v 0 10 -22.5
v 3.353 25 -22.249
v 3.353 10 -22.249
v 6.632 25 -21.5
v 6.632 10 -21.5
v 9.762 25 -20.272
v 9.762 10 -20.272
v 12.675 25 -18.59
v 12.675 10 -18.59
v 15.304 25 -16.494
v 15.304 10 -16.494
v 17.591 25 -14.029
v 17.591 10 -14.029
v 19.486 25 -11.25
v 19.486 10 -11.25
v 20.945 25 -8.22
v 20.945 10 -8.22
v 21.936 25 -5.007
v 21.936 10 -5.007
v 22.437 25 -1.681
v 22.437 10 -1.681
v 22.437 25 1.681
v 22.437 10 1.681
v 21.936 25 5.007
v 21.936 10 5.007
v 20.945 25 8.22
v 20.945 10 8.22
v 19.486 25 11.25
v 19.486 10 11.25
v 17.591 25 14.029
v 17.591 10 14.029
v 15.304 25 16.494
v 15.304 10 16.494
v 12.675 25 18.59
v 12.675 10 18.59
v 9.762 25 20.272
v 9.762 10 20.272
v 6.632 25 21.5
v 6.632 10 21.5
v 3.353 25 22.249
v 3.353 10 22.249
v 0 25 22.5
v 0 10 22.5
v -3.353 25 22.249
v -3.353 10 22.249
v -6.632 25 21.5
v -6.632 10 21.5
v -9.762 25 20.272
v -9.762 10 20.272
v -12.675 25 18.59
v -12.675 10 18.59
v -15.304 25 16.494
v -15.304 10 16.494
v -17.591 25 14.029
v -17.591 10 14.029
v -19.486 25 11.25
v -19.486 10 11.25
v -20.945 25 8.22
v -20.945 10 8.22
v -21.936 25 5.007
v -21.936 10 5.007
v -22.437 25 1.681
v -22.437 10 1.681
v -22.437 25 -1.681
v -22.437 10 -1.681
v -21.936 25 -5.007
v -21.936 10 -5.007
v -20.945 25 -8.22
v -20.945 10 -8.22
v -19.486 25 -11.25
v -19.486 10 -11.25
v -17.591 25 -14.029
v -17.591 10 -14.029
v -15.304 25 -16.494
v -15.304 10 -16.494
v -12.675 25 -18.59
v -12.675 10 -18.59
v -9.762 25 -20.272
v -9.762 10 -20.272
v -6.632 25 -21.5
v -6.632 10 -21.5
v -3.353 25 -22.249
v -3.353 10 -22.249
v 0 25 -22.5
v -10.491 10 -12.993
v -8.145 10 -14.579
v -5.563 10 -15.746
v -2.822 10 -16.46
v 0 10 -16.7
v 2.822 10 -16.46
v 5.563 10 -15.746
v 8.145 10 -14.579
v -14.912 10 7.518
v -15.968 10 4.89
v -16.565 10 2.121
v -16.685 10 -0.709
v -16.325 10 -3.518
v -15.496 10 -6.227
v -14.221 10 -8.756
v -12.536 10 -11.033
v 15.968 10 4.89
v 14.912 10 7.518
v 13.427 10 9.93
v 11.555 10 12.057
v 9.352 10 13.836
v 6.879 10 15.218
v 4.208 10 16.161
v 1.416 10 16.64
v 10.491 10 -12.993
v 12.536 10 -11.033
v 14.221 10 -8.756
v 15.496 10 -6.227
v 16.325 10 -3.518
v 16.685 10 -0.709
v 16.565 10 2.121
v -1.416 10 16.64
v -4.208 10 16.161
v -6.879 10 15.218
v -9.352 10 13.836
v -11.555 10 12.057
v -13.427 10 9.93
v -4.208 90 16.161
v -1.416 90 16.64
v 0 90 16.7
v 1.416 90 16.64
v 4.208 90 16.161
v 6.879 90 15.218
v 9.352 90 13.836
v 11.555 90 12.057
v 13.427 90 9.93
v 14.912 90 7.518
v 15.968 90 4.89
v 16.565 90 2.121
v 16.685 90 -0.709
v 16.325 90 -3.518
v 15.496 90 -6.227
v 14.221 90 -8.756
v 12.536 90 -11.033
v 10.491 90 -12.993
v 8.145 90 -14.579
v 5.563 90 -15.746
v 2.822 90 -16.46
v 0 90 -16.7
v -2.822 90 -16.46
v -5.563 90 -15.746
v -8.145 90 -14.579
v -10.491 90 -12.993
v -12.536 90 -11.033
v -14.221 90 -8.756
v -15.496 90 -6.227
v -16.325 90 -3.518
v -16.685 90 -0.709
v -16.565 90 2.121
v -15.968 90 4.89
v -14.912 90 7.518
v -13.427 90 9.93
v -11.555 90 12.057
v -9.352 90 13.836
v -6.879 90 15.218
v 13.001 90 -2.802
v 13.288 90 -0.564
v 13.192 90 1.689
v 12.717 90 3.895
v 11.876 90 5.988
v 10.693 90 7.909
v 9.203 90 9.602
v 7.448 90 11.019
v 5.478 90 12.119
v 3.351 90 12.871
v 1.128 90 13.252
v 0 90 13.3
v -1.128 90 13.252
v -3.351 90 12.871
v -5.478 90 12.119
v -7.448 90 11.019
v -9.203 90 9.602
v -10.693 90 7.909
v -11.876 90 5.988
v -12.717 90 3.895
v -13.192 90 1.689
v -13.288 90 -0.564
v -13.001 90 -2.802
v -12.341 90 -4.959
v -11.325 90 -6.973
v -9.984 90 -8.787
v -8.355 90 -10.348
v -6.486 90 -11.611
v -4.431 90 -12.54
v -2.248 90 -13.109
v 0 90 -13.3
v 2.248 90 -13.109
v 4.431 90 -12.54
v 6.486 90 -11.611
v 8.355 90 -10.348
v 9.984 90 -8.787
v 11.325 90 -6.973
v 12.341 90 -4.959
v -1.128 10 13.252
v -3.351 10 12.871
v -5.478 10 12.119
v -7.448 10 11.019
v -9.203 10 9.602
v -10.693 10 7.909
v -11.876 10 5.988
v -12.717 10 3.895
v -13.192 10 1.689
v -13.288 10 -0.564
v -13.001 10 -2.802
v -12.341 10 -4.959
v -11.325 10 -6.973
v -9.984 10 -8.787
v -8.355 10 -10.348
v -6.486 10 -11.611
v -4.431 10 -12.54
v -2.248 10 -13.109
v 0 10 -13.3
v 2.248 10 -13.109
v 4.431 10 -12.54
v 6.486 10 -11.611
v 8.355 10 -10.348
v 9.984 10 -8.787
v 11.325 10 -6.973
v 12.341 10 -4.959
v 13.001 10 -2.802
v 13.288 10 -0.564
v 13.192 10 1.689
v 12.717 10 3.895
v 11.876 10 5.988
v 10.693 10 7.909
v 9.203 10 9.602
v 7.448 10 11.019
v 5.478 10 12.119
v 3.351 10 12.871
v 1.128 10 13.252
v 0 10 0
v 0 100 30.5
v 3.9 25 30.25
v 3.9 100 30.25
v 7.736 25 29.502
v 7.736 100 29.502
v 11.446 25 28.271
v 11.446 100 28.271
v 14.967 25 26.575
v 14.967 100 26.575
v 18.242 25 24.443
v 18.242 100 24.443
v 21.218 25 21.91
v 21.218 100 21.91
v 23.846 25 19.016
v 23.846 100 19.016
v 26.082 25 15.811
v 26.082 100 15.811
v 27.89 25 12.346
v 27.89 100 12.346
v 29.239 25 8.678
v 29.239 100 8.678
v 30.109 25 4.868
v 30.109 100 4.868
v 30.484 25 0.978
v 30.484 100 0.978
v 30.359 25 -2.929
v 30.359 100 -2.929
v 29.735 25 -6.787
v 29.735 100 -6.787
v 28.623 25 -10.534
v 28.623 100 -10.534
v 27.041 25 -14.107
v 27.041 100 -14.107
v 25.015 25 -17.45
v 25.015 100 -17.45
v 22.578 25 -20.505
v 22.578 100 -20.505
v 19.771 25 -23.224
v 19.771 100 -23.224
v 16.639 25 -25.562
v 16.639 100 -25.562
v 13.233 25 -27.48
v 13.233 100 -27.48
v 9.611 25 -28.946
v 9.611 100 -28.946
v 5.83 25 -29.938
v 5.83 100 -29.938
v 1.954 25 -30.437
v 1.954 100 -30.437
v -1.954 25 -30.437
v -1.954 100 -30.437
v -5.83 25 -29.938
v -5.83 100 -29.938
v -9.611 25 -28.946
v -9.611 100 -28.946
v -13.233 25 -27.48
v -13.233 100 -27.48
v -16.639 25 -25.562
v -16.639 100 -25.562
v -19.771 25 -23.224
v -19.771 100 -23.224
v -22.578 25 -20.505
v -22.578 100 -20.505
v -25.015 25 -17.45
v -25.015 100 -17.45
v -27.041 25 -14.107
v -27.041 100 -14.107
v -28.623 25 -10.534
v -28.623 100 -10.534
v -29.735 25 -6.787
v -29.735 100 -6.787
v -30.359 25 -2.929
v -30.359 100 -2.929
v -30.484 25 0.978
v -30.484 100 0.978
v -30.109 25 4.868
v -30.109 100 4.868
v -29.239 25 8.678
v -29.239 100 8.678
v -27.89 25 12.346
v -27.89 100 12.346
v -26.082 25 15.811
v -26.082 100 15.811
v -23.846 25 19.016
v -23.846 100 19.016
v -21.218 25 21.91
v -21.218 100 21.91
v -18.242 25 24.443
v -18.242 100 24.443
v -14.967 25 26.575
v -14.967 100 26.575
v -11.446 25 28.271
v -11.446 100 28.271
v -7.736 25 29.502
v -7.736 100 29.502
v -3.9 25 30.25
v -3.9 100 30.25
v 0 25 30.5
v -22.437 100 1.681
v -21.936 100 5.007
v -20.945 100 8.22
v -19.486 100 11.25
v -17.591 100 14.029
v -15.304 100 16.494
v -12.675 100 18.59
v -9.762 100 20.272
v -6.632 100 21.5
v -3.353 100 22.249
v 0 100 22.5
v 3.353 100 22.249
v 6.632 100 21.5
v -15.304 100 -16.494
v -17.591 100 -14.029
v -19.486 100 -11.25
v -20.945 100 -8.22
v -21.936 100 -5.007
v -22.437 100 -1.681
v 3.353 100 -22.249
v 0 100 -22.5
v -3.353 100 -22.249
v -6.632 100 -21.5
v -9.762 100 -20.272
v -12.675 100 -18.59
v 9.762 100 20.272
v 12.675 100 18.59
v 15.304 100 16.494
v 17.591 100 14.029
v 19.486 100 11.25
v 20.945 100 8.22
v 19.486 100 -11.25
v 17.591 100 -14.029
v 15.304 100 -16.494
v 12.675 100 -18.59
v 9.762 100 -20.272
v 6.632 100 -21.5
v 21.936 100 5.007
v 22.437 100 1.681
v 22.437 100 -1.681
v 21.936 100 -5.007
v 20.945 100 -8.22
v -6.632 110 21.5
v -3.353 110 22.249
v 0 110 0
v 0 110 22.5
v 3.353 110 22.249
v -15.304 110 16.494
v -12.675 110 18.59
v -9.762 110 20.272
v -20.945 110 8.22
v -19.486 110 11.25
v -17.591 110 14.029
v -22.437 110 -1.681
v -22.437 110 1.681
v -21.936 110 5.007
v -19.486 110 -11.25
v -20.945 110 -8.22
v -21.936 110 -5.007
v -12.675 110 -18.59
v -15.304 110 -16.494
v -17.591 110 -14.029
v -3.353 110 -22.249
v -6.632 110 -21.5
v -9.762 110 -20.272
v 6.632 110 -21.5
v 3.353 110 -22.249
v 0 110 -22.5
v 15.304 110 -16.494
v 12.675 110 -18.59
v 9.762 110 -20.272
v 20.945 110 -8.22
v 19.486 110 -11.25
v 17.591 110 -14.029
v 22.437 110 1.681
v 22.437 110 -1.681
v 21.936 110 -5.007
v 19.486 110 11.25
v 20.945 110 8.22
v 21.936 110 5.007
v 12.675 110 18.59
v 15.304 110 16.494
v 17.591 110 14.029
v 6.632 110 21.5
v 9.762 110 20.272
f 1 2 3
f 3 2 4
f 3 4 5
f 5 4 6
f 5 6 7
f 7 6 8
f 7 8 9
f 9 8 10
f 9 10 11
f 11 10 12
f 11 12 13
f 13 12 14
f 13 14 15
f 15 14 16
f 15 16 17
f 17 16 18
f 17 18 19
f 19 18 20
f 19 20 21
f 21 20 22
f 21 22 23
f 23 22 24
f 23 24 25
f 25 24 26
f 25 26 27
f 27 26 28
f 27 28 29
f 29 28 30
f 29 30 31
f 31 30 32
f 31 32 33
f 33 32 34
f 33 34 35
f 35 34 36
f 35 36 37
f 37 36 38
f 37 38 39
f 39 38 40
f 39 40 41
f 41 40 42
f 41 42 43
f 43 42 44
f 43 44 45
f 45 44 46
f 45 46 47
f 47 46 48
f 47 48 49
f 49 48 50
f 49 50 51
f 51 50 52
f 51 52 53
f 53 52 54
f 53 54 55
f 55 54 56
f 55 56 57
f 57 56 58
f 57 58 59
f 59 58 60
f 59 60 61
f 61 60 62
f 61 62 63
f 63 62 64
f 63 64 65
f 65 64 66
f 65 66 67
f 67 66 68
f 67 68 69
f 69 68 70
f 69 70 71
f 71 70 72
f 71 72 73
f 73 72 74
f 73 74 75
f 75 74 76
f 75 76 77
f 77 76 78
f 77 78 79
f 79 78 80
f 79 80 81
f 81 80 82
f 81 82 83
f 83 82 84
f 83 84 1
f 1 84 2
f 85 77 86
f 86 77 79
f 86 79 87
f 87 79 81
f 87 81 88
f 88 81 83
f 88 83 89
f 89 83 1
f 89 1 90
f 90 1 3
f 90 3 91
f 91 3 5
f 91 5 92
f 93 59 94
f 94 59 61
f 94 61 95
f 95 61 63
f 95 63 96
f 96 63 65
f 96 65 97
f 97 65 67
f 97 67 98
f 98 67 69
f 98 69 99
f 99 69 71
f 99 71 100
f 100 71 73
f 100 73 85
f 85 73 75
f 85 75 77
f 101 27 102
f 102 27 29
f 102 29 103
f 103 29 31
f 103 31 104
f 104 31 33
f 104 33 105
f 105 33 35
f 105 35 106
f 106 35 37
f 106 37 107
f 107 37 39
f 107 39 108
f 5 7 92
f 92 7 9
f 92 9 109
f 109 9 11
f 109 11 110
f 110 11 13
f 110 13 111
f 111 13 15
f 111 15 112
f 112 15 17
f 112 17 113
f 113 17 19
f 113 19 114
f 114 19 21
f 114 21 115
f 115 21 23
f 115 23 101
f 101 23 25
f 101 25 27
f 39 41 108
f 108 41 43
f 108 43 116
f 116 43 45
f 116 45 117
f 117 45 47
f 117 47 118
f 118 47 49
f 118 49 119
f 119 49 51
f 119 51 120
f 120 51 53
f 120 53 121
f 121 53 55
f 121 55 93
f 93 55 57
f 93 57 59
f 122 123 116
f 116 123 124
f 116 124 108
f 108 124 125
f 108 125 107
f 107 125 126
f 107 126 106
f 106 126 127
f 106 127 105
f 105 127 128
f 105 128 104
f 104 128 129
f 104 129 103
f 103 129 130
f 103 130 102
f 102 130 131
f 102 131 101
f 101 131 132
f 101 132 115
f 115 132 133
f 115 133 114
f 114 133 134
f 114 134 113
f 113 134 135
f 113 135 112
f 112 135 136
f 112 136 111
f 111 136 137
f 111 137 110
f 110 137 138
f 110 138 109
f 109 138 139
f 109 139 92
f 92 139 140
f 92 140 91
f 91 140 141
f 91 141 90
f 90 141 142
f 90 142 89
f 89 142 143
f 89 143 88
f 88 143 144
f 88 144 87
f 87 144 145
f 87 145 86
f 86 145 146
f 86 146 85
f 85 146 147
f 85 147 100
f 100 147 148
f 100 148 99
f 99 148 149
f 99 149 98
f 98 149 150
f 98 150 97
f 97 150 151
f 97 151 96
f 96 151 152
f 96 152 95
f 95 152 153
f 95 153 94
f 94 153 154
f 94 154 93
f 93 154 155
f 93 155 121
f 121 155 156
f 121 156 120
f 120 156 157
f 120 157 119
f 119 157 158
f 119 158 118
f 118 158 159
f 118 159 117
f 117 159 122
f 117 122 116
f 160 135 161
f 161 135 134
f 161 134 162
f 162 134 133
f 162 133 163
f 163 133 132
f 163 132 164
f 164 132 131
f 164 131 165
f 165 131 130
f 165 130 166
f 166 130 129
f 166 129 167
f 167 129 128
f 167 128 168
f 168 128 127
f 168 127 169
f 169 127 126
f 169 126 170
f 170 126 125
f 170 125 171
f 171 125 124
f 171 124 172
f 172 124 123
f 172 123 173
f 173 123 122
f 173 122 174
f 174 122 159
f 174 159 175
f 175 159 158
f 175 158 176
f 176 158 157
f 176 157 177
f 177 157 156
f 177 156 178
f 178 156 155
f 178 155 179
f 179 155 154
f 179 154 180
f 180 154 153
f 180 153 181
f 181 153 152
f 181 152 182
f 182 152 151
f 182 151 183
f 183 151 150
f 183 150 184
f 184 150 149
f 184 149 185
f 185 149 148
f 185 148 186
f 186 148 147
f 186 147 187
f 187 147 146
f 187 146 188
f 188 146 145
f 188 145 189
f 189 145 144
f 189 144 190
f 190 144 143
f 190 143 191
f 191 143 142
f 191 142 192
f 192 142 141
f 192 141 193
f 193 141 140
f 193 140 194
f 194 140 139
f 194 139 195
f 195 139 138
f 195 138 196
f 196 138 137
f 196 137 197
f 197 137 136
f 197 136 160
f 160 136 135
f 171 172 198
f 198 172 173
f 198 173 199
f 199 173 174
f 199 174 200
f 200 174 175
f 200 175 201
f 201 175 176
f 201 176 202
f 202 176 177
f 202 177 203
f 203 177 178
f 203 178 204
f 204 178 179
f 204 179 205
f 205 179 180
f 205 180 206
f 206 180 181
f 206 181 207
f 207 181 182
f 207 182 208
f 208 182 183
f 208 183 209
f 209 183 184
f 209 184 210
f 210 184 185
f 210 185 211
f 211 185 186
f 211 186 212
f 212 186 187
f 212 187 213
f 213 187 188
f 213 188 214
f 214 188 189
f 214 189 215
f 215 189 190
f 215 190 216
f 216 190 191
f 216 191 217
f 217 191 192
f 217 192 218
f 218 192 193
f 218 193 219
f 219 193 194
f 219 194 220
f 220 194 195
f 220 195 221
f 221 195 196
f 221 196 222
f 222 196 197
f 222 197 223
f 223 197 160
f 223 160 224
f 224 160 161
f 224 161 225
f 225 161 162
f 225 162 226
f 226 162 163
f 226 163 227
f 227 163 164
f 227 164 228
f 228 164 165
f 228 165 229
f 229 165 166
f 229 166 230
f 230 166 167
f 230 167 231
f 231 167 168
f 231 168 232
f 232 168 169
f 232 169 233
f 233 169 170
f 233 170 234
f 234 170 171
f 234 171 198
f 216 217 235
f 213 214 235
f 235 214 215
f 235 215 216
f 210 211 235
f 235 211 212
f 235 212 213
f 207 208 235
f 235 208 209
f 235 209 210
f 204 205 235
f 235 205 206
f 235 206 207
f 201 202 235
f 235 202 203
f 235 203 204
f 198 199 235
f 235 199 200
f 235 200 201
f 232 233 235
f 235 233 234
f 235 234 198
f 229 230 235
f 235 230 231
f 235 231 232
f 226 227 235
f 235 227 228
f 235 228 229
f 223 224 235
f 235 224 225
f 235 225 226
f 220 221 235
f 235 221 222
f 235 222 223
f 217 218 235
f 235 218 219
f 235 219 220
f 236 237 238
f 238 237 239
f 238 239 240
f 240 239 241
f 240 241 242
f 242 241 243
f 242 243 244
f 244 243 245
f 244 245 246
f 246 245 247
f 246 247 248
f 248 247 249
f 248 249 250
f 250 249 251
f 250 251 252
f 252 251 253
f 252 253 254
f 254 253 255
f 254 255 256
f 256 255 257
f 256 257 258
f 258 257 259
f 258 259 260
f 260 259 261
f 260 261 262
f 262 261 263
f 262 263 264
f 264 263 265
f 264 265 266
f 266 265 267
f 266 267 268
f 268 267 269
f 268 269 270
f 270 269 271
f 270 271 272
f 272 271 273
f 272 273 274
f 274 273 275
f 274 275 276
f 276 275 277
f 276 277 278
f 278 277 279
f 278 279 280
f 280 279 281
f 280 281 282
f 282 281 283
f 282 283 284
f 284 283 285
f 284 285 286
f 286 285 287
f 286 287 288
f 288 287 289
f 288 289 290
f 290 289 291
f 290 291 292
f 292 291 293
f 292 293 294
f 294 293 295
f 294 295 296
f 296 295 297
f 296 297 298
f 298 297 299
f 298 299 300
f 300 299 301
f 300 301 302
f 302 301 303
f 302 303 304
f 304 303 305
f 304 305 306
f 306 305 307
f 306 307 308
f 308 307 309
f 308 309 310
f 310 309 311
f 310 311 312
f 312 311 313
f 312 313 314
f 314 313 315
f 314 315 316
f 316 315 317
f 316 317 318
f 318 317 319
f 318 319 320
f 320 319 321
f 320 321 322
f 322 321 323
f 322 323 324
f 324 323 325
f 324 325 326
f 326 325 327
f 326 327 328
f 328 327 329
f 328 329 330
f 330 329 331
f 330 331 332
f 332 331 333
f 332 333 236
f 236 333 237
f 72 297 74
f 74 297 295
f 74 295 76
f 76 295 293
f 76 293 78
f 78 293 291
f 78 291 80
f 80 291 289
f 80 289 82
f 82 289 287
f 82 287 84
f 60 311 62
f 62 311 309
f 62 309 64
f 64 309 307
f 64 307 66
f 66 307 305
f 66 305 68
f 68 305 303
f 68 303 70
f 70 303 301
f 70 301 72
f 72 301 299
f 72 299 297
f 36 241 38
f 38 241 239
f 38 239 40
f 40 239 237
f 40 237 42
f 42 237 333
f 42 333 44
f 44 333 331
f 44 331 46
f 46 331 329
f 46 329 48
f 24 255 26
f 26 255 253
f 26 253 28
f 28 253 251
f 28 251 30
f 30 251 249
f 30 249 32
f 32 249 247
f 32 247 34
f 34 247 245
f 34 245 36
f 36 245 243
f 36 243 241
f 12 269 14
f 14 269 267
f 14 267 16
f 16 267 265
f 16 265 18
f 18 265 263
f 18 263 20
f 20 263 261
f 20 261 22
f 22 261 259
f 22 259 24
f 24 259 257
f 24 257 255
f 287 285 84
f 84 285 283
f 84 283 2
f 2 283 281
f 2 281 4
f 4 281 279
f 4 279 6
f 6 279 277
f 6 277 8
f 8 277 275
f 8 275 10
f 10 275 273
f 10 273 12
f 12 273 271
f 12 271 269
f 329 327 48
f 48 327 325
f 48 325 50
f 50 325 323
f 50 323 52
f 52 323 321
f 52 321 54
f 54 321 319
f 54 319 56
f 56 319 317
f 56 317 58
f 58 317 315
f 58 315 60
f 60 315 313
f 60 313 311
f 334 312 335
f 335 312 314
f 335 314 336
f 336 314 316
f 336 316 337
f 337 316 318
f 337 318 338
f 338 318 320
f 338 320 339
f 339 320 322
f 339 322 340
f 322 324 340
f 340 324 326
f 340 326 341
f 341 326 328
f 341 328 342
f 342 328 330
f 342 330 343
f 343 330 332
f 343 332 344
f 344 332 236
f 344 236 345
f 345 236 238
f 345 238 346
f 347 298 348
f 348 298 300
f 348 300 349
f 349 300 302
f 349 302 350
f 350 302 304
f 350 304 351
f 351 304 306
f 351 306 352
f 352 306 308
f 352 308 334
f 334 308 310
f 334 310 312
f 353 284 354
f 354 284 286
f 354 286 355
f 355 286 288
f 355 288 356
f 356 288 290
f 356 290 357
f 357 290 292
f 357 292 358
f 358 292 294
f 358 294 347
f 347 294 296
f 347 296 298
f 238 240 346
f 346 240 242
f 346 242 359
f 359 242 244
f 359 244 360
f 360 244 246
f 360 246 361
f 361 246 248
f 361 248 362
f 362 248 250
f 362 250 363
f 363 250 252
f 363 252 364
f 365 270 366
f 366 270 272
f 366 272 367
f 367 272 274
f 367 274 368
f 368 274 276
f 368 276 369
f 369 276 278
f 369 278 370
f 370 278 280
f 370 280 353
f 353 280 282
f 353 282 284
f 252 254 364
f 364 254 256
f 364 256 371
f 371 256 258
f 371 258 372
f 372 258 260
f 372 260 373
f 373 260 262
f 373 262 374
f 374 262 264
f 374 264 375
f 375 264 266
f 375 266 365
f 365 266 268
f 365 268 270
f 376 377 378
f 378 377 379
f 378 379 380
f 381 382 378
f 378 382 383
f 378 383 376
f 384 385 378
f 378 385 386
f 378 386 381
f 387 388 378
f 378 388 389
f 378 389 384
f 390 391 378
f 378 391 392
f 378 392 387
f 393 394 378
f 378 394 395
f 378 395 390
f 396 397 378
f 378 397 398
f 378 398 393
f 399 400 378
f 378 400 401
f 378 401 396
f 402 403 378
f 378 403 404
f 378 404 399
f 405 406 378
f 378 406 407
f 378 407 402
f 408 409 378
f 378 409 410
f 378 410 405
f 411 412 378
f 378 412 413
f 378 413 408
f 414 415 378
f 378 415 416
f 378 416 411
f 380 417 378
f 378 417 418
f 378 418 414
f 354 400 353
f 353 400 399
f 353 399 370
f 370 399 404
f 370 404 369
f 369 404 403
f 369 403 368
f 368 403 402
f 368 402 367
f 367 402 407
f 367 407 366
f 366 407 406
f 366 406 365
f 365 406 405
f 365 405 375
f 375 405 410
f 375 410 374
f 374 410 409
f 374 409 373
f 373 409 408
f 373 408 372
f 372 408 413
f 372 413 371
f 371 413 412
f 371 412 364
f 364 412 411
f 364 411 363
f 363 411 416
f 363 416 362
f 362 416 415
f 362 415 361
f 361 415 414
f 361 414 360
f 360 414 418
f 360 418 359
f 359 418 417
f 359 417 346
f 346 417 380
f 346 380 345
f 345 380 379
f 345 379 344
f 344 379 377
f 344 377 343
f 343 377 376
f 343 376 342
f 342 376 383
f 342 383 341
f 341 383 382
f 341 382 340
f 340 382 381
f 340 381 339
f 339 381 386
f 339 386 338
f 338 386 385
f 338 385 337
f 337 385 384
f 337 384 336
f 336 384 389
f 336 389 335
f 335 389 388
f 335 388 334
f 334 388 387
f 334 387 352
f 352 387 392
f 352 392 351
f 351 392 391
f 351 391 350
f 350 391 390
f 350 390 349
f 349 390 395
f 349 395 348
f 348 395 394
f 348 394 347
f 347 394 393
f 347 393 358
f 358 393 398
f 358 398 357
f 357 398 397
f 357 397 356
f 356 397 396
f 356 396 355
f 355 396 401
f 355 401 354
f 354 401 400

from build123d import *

# Parameters (mm, degrees)
CROQUIS1_R              = 22.5
SALIENTE_EXTRUIR1_DEPTH = 110
CROQUIS2_R              = 16.7
CROQUIS2_R_2            = 13.3
CORTAR_EXTRUIR1_DEPTH   = 90
CROQUIS4_R              = 22.5
CORTAR_EXTRUIR2_DEPTH   = 10
SALIENTE_EXTRUIR2_START = -75
CROQUIS5_R              = 30.5
CROQUIS5_R_2            = 22.5
SALIENTE_EXTRUIR2_DEPTH = 75


with BuildPart() as part:
    # Croquis1 → Saliente-Extruir1 (new body)
    with BuildSketch(Plane(origin=(0, 0, 0), x_dir=(1, 0, 0), z_dir=(0, 1, 0))):
        with Locations(Location((0, 0, 0), (0, 0, 270))):
            Circle(CROQUIS1_R)
    extrude(amount=SALIENTE_EXTRUIR1_DEPTH)

    # Croquis2 → Cortar-Extruir1 (cut)
    with BuildSketch(Plane.XZ):
        with Locations(Location((0, 0, 0), (0, 0, 270))):
            Circle(CROQUIS2_R)
        with Locations(Location((0, 0, 0), (0, 0, 270))):
            Circle(CROQUIS2_R_2, mode=Mode.SUBTRACT)
    extrude(amount=-CORTAR_EXTRUIR1_DEPTH, mode=Mode.SUBTRACT)

    # Croquis4 → Cortar-Extruir2 (cut)
    with BuildSketch(Plane.XZ):
        with Locations(Location((0, 0, 0), (0, 0, 270))):
            Circle(CROQUIS4_R)
    extrude(amount=-CORTAR_EXTRUIR2_DEPTH, mode=Mode.SUBTRACT)

    # Croquis5 → Saliente-Extruir2 (add)
    with BuildSketch(Plane(origin=(0, 100, 0), x_dir=(1, 0, 0), z_dir=(0, 1, 0)).offset(SALIENTE_EXTRUIR2_START)):
        with Locations(Location((0, 0, 0), (0, 0, 270))):
            Circle(CROQUIS5_R)
        with Locations(Location((0, 0, 0), (0, 0, 90))):
            Circle(CROQUIS5_R_2, mode=Mode.SUBTRACT)
    extrude(amount=SALIENTE_EXTRUIR2_DEPTH)


solid = part.part
